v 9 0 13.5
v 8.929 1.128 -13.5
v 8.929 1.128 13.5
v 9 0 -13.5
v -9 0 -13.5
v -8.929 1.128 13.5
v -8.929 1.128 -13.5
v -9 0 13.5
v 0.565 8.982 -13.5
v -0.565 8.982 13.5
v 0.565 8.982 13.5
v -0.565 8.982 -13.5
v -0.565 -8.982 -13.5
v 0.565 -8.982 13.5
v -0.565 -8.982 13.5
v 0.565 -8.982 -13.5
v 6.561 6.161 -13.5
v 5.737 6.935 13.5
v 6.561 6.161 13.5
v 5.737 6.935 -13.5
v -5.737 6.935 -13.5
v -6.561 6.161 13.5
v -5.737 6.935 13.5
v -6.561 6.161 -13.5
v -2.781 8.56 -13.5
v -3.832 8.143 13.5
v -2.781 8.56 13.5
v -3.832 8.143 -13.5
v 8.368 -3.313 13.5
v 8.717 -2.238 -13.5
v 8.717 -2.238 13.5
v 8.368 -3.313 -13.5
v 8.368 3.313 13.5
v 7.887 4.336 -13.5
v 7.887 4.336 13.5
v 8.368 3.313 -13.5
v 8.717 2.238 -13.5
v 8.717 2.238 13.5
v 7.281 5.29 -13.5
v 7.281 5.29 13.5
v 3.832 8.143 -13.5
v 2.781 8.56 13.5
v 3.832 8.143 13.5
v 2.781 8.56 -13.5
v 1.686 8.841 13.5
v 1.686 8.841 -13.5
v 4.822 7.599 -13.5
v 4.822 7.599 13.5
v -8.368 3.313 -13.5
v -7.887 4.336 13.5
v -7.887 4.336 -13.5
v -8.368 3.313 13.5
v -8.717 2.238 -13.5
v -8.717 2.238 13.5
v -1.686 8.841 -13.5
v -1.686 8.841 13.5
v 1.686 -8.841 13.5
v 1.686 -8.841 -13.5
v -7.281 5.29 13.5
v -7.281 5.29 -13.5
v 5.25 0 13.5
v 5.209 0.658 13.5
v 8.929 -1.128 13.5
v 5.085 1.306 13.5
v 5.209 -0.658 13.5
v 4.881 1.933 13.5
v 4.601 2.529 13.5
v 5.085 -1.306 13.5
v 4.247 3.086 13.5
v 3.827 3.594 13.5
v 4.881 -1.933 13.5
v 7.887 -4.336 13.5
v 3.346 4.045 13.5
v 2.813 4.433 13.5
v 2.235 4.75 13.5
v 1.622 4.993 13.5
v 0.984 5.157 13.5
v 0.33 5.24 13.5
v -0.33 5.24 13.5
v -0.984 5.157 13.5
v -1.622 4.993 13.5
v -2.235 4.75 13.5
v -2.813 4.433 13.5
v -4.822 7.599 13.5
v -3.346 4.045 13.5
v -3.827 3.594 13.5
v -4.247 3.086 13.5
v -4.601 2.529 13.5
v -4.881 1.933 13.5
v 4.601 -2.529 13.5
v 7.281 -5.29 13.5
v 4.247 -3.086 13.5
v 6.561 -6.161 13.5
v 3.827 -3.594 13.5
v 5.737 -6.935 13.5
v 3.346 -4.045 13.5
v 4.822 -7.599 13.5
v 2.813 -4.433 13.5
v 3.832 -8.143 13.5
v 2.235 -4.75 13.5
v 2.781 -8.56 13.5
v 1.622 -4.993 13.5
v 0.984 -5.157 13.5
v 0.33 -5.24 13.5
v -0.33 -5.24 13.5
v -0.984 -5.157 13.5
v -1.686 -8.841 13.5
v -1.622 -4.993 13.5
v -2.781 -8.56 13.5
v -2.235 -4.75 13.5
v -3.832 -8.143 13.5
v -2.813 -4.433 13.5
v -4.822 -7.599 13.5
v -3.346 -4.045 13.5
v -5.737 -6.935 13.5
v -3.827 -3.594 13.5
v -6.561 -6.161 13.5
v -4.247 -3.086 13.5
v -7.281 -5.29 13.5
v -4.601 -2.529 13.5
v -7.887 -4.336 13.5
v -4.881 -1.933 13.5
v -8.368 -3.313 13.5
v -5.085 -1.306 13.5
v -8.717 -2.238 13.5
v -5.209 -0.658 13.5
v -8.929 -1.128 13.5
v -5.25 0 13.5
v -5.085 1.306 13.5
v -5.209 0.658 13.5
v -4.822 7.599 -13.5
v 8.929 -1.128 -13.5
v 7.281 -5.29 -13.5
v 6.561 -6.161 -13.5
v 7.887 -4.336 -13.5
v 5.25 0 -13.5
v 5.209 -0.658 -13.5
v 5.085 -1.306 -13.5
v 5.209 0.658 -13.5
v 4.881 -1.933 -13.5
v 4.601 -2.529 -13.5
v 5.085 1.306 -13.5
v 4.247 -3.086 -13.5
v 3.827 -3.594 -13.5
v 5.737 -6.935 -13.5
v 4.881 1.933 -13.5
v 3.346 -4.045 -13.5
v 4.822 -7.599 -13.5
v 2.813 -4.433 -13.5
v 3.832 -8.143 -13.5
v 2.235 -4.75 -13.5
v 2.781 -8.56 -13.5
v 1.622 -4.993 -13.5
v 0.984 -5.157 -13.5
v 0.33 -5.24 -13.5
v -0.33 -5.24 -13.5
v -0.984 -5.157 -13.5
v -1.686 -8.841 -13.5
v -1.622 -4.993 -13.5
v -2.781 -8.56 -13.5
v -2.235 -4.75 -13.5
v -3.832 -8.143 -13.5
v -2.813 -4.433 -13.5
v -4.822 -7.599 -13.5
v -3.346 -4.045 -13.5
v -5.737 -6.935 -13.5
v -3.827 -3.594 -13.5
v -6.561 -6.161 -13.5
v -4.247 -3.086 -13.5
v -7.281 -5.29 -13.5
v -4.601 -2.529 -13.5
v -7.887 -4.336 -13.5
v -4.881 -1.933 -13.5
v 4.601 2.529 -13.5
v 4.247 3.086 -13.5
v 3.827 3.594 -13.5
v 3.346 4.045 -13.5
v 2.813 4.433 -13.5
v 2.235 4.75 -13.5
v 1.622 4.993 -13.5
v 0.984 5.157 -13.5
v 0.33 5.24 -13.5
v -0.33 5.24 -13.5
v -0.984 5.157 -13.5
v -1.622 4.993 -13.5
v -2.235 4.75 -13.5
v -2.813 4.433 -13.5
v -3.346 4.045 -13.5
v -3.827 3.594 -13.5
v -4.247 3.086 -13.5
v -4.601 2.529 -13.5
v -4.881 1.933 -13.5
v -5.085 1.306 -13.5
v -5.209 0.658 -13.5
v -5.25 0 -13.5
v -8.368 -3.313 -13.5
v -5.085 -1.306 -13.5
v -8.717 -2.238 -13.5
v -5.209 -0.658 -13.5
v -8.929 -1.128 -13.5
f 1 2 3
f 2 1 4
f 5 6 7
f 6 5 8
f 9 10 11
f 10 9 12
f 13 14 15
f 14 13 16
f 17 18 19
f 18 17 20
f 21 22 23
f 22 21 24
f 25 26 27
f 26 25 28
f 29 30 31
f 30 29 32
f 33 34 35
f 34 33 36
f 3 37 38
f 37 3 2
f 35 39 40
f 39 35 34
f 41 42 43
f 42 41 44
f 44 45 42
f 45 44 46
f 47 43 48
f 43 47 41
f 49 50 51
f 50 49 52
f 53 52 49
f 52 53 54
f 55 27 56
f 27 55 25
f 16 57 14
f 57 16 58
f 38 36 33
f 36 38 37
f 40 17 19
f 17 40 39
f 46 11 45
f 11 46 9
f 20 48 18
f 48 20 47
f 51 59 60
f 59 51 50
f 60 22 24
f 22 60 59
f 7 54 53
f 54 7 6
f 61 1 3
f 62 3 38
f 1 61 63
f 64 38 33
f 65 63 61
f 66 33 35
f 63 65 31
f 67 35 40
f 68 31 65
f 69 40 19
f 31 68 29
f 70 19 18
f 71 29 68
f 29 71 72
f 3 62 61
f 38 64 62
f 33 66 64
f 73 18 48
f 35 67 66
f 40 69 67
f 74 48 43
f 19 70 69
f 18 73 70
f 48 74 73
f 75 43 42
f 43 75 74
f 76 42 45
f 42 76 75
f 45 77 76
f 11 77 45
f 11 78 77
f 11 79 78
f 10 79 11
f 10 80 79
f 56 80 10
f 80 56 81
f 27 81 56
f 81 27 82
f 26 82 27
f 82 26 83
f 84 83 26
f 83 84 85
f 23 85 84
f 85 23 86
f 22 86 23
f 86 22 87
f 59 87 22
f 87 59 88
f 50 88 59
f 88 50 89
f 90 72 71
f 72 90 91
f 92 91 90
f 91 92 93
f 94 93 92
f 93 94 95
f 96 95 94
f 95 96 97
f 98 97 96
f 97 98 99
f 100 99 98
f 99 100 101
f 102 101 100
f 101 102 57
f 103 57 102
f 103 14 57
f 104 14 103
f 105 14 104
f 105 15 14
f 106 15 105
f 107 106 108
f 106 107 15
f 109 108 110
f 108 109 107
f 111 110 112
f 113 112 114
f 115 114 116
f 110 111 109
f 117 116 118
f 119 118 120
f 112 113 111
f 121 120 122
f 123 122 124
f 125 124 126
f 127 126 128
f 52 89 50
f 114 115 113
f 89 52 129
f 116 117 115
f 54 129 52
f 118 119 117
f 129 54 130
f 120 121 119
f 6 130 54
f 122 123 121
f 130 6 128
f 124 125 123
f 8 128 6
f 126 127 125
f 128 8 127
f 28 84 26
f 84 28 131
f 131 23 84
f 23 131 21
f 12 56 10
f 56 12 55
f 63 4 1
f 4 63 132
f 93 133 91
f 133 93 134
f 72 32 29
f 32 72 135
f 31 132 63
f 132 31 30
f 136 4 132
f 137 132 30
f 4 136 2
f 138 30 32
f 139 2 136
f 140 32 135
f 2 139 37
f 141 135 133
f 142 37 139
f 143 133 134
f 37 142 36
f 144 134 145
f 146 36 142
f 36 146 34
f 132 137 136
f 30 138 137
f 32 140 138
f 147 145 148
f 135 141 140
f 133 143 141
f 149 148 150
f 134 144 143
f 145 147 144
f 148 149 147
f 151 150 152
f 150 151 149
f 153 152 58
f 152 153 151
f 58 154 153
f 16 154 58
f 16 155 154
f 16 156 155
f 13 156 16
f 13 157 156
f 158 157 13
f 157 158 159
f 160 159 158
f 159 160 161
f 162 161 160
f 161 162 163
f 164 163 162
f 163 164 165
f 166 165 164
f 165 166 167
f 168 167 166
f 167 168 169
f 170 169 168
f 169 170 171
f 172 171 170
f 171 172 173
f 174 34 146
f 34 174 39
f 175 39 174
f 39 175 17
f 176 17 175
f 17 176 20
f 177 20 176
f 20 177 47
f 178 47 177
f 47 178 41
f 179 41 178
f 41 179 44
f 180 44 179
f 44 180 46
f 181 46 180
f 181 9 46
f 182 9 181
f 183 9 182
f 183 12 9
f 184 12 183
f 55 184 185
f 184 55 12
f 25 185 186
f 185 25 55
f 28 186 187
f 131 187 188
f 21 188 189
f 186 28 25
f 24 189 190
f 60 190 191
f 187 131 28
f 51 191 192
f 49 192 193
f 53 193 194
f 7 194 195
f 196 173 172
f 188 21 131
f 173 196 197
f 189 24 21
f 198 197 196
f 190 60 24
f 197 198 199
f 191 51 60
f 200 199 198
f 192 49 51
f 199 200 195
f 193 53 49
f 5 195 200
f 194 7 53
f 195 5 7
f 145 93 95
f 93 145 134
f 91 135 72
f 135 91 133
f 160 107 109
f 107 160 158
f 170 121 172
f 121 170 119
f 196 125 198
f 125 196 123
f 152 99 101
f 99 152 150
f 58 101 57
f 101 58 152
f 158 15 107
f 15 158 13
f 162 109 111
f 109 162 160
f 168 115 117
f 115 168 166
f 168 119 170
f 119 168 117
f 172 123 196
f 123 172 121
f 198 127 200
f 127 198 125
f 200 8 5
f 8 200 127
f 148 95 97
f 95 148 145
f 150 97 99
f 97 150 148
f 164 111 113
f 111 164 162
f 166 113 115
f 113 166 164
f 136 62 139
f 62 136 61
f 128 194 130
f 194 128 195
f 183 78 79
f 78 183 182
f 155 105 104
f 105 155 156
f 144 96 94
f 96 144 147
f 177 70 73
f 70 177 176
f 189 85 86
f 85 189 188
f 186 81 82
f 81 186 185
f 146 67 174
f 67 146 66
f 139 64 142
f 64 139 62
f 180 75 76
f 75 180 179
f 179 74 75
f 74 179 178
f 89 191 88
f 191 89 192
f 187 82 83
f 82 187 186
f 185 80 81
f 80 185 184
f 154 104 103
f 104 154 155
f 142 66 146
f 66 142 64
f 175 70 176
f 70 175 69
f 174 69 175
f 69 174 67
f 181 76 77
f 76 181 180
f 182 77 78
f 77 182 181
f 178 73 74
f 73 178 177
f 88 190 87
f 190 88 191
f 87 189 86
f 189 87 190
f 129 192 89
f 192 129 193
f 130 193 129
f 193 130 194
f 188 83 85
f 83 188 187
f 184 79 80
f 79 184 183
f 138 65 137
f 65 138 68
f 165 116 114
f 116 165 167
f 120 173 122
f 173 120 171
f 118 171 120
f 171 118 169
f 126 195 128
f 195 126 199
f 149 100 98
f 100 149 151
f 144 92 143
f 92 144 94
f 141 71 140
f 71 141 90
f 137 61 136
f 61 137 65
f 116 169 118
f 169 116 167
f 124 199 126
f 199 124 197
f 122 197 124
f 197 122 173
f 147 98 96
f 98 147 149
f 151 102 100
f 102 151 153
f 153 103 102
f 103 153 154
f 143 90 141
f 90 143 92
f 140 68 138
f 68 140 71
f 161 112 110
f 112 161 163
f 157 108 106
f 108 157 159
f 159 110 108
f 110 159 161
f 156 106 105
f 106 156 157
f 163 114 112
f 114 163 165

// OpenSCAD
$fn = 50;


difference() {
	union() {
		translate(v = [0, 0, -13.5000000000]) {
			cylinder(h = 27, r = 9.0000000000);
		}
	}
	union() {
		translate(v = [0, 0, -100.0000000000]) {
			cylinder(h = 200, r = 5.2500000000);
		}
	}
}
